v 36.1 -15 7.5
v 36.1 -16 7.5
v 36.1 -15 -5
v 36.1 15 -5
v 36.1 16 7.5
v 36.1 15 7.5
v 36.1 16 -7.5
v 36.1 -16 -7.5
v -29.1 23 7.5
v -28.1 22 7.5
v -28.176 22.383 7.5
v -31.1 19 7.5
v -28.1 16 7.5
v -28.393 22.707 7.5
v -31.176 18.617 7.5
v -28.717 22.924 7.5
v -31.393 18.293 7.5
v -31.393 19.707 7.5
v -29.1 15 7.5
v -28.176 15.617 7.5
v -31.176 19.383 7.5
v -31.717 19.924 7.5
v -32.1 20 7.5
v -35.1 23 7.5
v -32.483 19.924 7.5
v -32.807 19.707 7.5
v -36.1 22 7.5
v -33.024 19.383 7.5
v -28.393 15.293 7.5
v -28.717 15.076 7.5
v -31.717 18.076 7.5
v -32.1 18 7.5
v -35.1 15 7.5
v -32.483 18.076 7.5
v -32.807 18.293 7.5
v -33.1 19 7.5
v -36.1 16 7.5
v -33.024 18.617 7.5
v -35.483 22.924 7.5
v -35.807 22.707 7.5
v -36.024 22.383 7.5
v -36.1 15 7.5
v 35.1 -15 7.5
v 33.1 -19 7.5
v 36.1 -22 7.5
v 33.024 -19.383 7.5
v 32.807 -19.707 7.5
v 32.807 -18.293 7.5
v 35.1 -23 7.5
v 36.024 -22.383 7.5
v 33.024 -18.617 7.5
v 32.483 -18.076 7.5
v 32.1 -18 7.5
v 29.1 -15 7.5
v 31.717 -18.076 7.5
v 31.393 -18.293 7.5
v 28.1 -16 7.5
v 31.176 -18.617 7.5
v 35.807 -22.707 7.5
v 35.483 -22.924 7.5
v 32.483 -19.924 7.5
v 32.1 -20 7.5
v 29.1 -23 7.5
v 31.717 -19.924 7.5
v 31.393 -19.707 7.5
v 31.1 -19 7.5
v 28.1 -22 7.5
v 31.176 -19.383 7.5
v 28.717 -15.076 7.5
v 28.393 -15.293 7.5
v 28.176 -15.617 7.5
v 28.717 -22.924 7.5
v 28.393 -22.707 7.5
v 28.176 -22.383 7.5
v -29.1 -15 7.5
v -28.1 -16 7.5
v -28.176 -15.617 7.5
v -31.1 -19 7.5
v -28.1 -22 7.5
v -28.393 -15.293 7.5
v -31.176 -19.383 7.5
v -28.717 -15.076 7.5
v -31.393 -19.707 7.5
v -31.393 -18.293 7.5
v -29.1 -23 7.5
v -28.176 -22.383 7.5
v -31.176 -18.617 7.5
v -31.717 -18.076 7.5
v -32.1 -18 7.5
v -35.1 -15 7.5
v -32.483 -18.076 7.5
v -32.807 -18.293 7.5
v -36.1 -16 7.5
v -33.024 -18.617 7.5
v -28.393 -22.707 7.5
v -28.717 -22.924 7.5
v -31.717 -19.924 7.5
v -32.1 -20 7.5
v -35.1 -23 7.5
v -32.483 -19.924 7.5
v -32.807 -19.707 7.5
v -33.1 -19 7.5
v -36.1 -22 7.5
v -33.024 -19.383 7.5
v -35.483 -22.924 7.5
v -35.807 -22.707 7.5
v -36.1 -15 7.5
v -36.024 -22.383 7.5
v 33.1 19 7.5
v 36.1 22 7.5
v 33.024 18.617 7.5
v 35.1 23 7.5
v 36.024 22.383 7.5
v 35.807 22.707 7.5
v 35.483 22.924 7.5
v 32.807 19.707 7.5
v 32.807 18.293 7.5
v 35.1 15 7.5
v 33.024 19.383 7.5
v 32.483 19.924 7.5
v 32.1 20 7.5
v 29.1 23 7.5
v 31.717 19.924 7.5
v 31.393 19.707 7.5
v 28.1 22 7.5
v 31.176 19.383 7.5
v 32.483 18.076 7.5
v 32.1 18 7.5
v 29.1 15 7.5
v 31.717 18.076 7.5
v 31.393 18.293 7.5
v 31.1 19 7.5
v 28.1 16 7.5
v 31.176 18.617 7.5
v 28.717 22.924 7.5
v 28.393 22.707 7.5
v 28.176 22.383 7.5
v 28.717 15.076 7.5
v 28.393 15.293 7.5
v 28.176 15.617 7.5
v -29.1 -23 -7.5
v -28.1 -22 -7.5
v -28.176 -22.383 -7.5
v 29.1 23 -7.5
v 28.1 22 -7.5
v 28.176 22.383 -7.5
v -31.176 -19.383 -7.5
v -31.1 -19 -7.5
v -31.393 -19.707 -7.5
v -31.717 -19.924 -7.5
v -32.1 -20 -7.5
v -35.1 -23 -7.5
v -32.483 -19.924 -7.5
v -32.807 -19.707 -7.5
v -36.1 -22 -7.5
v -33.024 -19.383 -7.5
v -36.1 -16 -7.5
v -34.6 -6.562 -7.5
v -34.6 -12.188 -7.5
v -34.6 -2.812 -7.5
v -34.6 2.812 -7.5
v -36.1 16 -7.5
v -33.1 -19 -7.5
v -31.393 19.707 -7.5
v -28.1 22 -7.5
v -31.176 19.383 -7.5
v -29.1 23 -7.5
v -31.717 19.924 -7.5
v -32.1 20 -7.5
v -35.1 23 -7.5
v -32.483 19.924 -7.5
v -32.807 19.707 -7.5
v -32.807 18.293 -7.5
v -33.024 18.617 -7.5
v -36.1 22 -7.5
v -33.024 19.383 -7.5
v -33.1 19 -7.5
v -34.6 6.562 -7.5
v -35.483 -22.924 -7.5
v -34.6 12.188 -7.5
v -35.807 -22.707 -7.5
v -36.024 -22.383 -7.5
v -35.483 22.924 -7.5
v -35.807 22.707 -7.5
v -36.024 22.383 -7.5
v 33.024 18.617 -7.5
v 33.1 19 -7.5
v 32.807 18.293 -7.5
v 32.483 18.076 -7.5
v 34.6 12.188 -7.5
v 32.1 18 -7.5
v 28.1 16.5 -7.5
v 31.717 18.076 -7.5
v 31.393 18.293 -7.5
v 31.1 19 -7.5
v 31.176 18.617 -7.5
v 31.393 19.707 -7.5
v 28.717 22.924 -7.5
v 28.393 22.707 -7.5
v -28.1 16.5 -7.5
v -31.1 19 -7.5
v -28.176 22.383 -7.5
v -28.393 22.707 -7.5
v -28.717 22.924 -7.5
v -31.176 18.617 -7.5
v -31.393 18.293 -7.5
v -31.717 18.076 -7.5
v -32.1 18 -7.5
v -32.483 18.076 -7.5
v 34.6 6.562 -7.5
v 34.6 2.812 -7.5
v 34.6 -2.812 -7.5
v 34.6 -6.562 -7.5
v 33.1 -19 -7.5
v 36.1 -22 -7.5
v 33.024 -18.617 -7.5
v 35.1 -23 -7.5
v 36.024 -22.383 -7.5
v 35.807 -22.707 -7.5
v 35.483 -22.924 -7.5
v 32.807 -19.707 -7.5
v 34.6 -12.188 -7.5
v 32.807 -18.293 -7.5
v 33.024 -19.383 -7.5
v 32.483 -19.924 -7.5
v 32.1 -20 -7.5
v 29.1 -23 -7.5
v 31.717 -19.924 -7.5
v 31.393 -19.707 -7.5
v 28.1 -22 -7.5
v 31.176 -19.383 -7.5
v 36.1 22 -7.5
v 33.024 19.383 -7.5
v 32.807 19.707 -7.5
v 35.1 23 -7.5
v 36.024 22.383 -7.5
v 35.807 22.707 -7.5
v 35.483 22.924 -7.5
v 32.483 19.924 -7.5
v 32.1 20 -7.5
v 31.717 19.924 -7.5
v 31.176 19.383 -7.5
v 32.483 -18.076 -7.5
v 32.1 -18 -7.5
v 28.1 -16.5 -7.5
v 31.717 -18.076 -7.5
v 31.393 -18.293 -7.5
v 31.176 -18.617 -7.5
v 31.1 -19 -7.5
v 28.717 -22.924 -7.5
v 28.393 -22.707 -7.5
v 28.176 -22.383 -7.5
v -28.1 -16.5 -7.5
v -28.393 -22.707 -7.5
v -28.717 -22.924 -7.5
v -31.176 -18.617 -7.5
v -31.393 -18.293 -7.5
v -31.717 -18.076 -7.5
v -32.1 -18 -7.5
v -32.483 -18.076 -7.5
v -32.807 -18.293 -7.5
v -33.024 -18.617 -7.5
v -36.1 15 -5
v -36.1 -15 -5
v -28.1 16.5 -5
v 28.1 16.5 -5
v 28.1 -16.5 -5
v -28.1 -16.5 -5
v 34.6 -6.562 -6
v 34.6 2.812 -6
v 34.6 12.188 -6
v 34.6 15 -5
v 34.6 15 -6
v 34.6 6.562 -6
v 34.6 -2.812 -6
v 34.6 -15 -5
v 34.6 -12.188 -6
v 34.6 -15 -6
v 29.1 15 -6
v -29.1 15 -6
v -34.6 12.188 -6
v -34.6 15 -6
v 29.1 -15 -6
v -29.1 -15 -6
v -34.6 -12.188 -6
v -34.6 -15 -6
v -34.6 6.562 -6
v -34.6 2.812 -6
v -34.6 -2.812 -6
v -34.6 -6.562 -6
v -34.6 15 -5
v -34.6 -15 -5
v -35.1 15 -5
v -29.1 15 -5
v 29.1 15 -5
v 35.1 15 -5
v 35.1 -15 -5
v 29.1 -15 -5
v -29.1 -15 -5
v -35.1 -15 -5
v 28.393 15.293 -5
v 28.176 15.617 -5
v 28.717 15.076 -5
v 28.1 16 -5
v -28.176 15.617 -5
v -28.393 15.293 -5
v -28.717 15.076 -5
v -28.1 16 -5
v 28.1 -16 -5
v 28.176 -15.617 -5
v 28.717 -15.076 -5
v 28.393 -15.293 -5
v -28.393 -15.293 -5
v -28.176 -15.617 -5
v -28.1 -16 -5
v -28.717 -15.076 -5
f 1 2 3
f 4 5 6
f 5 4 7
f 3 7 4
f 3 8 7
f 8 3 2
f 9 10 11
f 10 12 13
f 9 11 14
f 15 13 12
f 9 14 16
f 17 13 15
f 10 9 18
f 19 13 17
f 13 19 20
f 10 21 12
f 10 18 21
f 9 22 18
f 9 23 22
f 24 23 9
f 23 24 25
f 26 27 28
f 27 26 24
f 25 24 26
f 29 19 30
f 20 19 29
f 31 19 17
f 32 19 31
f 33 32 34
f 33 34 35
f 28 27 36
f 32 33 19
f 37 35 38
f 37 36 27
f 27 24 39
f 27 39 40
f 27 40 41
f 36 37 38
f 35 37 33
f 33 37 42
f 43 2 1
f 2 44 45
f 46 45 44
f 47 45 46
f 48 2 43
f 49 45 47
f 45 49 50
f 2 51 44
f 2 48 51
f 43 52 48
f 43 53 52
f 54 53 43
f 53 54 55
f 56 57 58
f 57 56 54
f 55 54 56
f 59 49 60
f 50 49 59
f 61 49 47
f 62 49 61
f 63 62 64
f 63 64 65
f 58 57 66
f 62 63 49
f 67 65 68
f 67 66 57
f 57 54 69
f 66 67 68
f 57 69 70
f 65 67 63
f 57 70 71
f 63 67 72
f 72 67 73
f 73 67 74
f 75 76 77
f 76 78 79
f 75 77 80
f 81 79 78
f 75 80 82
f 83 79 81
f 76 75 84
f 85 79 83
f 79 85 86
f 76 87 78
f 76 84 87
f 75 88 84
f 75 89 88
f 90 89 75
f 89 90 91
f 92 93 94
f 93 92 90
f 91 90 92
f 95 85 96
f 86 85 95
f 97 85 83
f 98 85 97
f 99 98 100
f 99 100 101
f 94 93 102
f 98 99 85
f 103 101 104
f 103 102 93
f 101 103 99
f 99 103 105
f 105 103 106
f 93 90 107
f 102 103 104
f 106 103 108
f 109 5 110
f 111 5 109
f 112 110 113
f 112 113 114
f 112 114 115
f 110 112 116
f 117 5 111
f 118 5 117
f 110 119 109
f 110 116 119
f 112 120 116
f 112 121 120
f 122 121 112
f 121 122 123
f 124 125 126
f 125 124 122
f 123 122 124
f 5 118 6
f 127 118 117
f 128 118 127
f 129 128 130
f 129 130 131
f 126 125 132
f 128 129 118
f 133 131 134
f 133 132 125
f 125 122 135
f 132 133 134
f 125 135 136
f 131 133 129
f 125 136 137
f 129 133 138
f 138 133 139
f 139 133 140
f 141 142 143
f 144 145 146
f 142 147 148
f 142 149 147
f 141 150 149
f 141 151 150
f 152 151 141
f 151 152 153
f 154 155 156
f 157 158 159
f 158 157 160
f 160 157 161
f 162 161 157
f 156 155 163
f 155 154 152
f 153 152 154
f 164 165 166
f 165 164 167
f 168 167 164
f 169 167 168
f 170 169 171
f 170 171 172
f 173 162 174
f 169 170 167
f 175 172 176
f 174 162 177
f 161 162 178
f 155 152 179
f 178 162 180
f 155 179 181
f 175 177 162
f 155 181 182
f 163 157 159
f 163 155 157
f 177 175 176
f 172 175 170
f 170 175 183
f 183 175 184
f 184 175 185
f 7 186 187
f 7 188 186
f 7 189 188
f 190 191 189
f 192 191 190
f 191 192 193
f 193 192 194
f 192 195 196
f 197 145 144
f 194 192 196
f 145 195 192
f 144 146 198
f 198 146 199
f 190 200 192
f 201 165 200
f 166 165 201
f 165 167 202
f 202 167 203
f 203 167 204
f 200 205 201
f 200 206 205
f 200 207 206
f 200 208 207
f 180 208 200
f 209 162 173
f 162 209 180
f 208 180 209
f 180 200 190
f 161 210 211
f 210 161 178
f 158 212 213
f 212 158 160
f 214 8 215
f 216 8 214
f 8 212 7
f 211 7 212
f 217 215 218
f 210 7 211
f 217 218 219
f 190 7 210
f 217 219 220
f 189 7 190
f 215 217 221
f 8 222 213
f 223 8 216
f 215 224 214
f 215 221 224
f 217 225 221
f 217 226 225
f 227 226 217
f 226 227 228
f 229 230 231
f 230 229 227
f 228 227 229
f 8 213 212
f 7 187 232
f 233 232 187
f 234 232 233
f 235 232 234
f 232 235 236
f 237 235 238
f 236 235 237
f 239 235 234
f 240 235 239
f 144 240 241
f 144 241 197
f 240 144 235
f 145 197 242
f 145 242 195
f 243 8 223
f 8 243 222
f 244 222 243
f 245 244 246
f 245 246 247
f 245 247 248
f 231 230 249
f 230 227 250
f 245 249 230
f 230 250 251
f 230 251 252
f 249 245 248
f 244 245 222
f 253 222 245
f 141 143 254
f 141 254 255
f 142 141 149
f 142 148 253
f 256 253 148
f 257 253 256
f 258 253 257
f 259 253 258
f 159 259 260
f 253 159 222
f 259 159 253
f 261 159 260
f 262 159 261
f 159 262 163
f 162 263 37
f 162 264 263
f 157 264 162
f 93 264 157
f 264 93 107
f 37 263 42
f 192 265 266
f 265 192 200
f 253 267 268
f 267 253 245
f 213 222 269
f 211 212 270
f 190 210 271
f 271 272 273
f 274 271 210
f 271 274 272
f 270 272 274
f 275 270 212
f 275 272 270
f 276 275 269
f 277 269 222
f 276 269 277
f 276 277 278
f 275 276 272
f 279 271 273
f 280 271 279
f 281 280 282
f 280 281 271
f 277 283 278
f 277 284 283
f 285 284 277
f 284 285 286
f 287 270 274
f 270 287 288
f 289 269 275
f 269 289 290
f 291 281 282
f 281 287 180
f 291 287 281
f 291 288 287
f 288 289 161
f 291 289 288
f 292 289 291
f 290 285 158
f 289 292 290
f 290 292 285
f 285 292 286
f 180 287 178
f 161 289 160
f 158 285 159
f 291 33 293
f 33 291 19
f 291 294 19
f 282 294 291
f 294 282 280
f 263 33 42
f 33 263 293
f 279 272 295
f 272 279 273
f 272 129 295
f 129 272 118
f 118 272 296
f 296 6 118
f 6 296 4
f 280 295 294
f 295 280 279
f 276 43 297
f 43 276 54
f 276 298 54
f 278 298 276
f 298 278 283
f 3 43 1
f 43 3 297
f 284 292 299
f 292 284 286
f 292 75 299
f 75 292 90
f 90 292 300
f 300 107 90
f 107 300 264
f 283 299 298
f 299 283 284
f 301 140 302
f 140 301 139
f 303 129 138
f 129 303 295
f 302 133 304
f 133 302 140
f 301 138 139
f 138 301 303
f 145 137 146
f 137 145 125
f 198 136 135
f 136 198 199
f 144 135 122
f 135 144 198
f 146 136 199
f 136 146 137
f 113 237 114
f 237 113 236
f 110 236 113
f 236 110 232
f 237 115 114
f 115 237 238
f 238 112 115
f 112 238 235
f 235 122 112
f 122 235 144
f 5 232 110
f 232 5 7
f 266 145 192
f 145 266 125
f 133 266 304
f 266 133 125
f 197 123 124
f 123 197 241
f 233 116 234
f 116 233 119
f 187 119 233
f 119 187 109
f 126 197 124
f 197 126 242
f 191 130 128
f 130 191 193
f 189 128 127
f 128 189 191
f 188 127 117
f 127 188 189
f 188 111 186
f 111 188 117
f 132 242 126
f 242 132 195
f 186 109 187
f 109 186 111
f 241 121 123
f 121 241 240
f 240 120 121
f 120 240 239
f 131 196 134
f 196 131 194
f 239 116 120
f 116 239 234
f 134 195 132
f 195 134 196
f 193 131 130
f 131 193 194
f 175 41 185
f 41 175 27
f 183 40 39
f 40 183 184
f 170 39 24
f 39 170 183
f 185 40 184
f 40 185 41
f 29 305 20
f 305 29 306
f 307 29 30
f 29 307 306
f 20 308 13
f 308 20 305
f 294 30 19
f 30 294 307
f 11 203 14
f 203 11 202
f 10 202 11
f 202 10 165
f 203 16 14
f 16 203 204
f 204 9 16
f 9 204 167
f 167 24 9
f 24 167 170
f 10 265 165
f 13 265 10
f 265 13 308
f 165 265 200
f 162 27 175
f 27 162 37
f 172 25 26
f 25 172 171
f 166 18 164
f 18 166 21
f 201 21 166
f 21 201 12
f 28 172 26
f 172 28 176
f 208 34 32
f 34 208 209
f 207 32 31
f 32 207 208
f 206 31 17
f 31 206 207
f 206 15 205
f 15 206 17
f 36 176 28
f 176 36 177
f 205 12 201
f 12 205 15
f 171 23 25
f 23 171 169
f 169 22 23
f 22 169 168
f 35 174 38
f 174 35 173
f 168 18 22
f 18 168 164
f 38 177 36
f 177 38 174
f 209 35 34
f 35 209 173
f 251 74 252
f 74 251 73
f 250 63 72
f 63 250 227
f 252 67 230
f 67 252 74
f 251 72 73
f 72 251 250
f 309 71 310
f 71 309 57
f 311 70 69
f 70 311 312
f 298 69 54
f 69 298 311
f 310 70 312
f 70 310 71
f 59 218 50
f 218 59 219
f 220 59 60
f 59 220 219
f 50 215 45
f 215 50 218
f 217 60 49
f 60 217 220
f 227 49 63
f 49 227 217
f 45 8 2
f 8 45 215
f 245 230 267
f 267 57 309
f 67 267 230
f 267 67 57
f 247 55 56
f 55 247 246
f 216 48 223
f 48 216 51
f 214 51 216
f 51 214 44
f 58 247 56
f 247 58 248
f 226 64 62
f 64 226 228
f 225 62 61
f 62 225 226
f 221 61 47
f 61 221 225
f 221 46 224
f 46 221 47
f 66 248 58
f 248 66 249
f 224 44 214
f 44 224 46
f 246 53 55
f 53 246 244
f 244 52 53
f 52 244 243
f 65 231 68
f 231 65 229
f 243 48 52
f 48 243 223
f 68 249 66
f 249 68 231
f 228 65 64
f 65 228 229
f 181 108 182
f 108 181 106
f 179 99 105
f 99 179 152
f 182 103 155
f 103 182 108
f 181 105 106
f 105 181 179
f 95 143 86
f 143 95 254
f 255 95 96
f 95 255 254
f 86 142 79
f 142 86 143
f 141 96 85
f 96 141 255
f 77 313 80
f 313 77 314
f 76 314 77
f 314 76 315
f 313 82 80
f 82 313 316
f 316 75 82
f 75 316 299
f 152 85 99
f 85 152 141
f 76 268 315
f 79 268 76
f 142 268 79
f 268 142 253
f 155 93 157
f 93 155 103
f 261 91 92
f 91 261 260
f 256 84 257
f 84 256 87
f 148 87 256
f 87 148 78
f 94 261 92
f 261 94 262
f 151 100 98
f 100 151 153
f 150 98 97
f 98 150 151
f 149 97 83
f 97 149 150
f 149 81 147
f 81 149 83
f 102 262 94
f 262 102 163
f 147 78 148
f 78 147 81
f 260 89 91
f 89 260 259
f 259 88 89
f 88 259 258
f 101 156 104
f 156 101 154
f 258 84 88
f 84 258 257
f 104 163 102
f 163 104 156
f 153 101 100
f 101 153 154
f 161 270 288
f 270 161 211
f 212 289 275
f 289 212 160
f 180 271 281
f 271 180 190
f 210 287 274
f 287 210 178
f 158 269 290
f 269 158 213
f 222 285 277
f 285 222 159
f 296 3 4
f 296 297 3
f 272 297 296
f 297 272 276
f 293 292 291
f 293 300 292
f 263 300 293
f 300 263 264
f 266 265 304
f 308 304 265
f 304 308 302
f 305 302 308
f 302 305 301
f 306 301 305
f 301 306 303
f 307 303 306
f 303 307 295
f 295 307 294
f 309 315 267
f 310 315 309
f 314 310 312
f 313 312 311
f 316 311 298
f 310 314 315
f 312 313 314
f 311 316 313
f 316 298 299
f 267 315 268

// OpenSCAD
// file: consts.scad
//    consts.scad
//    Constant values for OpenSCAD model 
//
//    Copyright (C) 2026 Clear Creek Scientific
//
//    This program is free software: you can redistribute it and/or modify
//    it under the terms of the GNU General Public License as published by
//    the Free Software Foundation, either version 3 of the License, or
//    (at your option) any later version.
//
//    This program is distributed in the hope that it will be useful,
//    but WITHOUT ANY WARRANTY; without even the implied warranty of
//    MERCHANTABILITY or FITNESS FOR A PARTICULAR PURPOSE.  See the
//    GNU General Public License for more details.
//
//    You should have received a copy of the GNU General Public License
//    along with this program.  If not, see <https://www.gnu.org/licenses/>.

WALL_WIDTH = 1.5;
TAB_WIDTH = 8;
HALF_TAB_WIDTH = 0.5 * TAB_WIDTH;
TAB_HOLE_RADIUS = 1;
TAB_CORNER_RADIUS=1;
DRAIN_HOLE_HEIGHT = 5.0;
DRAIN_HOLE_RADIUS = 2.0;
SCREW_HOLE_HEIGHT = 2.0 * WALL_WIDTH;
SCREW_HOLE_RADIUS = 1.0;
SCREW_HEAD_HEIGHT = 0.5*WALL_WIDTH;
SCREW_HEAD_RADIUS = 2.5;

BATTERY_INNER_X_DIM = 69.2;
BATTERY_INNER_Y_DIM = 19.0;
BATTERY_WALL_HEIGHT = BATTERY_INNER_Y_DIM + WALL_WIDTH + 5.0;
BATTERY_OUTER_X_DIM = BATTERY_INNER_X_DIM + 2*WALL_WIDTH;
BATTERY_OUTER_Y_DIM = BATTERY_INNER_Y_DIM + 2*WALL_WIDTH;
BATTERY_X_OFFSET = 6; 

WIRETIE_INNER_X_DIM = 69.2;
WIRETIE_INNER_Y_DIM = 30.0;
WIRETIE_WALL_HEIGHT = 15.0; 
WIRETIE_OUTER_X_DIM = WIRETIE_INNER_X_DIM + 2*WALL_WIDTH;
WIRETIE_OUTER_Y_DIM = WIRETIE_INNER_Y_DIM + 2*WALL_WIDTH;
WIRETIE_X_OFFSET = 6;

PANEL_WALL_HEIGHT = 8;
PANEL_INNER_X_DIM = 138;
PANEL_INNER_Y_DIM = 114;
PANEL_OUTER_X_DIM = PANEL_INNER_X_DIM + 2*WALL_WIDTH;
PANEL_OUTER_Y_DIM = PANEL_INNER_Y_DIM + 2*WALL_WIDTH;
PANEL_CENTER_BOX_WIDTH = 30;

PANEL_CENTER_X_LEN = 52.5;
PANEL_CENTER_Y_LEN = 41.0;

MOUNT_INNER_X_DIM = 33.0;
MOUNT_INNER_Y_DIM = MOUNT_INNER_X_DIM;
MOUNT_WALL_HEIGHT = 36.0;
MOUNT_OUTER_X_DIM = MOUNT_INNER_X_DIM + 2*WALL_WIDTH;
MOUNT_OUTER_Y_DIM = MOUNT_INNER_Y_DIM + 2*WALL_WIDTH;

CHARGER_INNER_X_DIM = MOUNT_INNER_X_DIM;
CHARGER_INNER_Y_DIM = MOUNT_INNER_Y_DIM;
CHARGER_WALL_HEIGHT = 20.0;
CHARGER_OUTER_X_DIM = CHARGER_INNER_X_DIM + 2*WALL_WIDTH;
CHARGER_OUTER_Y_DIM = CHARGER_INNER_Y_DIM + 2*WALL_WIDTH;

HINGE_TAB_WIDTH = 15.0;
HINGE_TAB_DEPTH = 3.0;
HINGE_TAB_HEIGHT = 16.0;
HINGE_TAB_RADIUS = 3.0;

HINGE_HOLE_DEPTH = HINGE_TAB_DEPTH+0.2;
// Hinge hole needs to accept a 10/32 inch screw
HINGE_HOLE_DIAMETER = 6;
HINGE_HOLE_RADIUS = 0.5*HINGE_HOLE_DIAMETER;
HINGE_HOLE_OFFSET = HINGE_TAB_HEIGHT - (HINGE_HOLE_RADIUS+3);

HINGE_GAP = 3.1;
HINGE_SUPPORT_OVERHANG = 2.0;

SKIRT_WALL_HEIGHT = 16;
SKIRT_INNER_X_DIM = PANEL_INNER_X_DIM - 2*(WALL_WIDTH+0.2);
SKIRT_INNER_Y_DIM = PANEL_INNER_Y_DIM - 2*(WALL_WIDTH+0.2);
SKIRT_OUTER_X_DIM = SKIRT_INNER_X_DIM + 2*WALL_WIDTH;
SKIRT_OUTER_Y_DIM = SKIRT_INNER_Y_DIM + 2*WALL_WIDTH;
SKIRT_TAB_OFFSET = 4 * WALL_WIDTH;
SKIRT_TAB_DIM = 2*SCREW_HEAD_RADIUS+SKIRT_TAB_OFFSET+0.5;
SKIRT_TAB_HEIGHT = 4; 
// file: common.scad
//    battery_box.scad
//    OpenSCAD model for a box for a PKCELL 18650 lithium-ion battery 
//
//    Copyright (C) 2026 Clear Creek Scientific
//
//    This program is free software: you can redistribute it and/or modify
//    it under the terms of the GNU General Public License as published by
//    the Free Software Foundation, either version 3 of the License, or
//    (at your option) any later version.
//
//    This program is distributed in the hope that it will be useful,
//    but WITHOUT ANY WARRANTY; without even the implied warranty of
//    MERCHANTABILITY or FITNESS FOR A PARTICULAR PURPOSE.  See the
//    GNU General Public License for more details.
//
//    You should have received a copy of the GNU General Public License
//    along with this program.  If not, see <https://www.gnu.org/licenses/>.

include <consts.scad>
use <MCAD/boxes.scad>
use <MCAD/regular_shapes.scad>

module tab(height) {
    difference() {
        roundedBox(size=[TAB_WIDTH,TAB_WIDTH,height],radius=TAB_CORNER_RADIUS,sidesonly=true);
        translate([0,0,-height]) {
            cylinder(2*height,TAB_HOLE_RADIUS,TAB_HOLE_RADIUS);
        }
    }
}

module drain_hole() {
    //cylinder(h=DRAIN_HOLE_HEIGHT,r=DRAIN_HOLE_RADIUS,center=true);
    cube([DRAIN_HOLE_HEIGHT,DRAIN_HOLE_HEIGHT,DRAIN_HOLE_HEIGHT],center=true);
}

module screw_hole() {
    union() {
        cylinder(h=SCREW_HOLE_HEIGHT,r=SCREW_HOLE_RADIUS,center=true);
        translate([0,0,0.5*WALL_WIDTH]) {
            cylinder(h=SCREW_HEAD_HEIGHT,r=SCREW_HEAD_RADIUS,center=true);
        }
    }
}

module reverse_screw_hole() {
    union() {
        cylinder(h=SCREW_HEAD_HEIGHT,r=SCREW_HEAD_RADIUS,center=true);
        translate([0,0,0.5*WALL_WIDTH]) {
            cylinder(h=SCREW_HOLE_HEIGHT,r=SCREW_HOLE_RADIUS,center=true);
        }
    }
}

module hinge_tab(hole_offset) {
    rotate([90,0,0]) {
        difference() {
            roundedBox(size=[HINGE_TAB_WIDTH,HINGE_TAB_HEIGHT,HINGE_TAB_DEPTH],radius=HINGE_TAB_RADIUS,sidesonly=true);
            translate([0,hole_offset,0]) {
                cylinder(h=HINGE_HOLE_DEPTH+0.2,r=HINGE_HOLE_RADIUS,center=true);
            }
        }
    }
}

BASE_X_DIM = MOUNT_OUTER_X_DIM;
BASE_Y_DIM = MOUNT_OUTER_Y_DIM+2*(TAB_WIDTH-WALL_WIDTH);

module mount_hinge_base() {
    union () {
        // main base 
        difference() {
            roundedBox(size=[BASE_X_DIM,BASE_Y_DIM,WALL_WIDTH],radius=TAB_CORNER_RADIUS,sidesonly=true);

            // cut out screw holes
            translate([0.5*(BASE_X_DIM-TAB_WIDTH),0.5*(BASE_Y_DIM-TAB_WIDTH),0]) {
                screw_hole();
            }
            translate([-0.5*(BASE_X_DIM-TAB_WIDTH),0.5*(BASE_Y_DIM-TAB_WIDTH),0]) {
                screw_hole();
            }
            translate([0.5*(BASE_X_DIM-TAB_WIDTH),-0.5*(BASE_Y_DIM-TAB_WIDTH),0]) {
                screw_hole();
            }
            translate([-0.5* (BASE_X_DIM-TAB_WIDTH),-0.5*(BASE_Y_DIM-TAB_WIDTH),0]) {
                screw_hole();
            }
        } // difference

        // support base for hinges
        translate([0,0,0.5*HINGE_TAB_DEPTH]) {
            cube([HINGE_TAB_WIDTH+2*HINGE_SUPPORT_OVERHANG,4*HINGE_TAB_DEPTH+HINGE_GAP+2*HINGE_SUPPORT_OVERHANG,HINGE_TAB_DEPTH],center=true);
        }
    }
}
// main file
//    wiretie_box.scad
//    OpenSCAD model for a wire tie box
//
//    Copyright (C) 2026 Clear Creek Scientific
//
//    This program is free software: you can redistribute it and/or modify
//    it under the terms of the GNU General Public License as published by
//    the Free Software Foundation, either version 3 of the License, or
//    (at your option) any later version.
//
//    This program is distributed in the hope that it will be useful,
//    but WITHOUT ANY WARRANTY; without even the implied warranty of
//    MERCHANTABILITY or FITNESS FOR A PARTICULAR PURPOSE.  See the
//    GNU General Public License for more details.
//
//    You should have received a copy of the GNU General Public License
//    along with this program.  If not, see <https://www.gnu.org/licenses/>.

include <common.scad>

$fa=1;
$fs=0.4;


module basic_wiretie_box() {
    difference() {
    
        // outer box
        cube([WIRETIE_OUTER_X_DIM,WIRETIE_OUTER_Y_DIM,WIRETIE_WALL_HEIGHT],center=true); 

        // cut out inner box
        translate([0,0,WALL_WIDTH]) {
            cube([WIRETIE_INNER_X_DIM,WIRETIE_INNER_Y_DIM,WIRETIE_WALL_HEIGHT],center=true); 
        }
    } // difference
}

RAIL_WIDTH = WIRETIE_INNER_Y_DIM/8;

module basic_wiretie_box_with_cutouts() {
    difference() {
        basic_wiretie_box();

        // cut out tie rails 
        translate([0,0,-0.5*(WIRETIE_WALL_HEIGHT)-0.1]) {
            cube([WIRETIE_INNER_X_DIM,1.5*RAIL_WIDTH,4*WALL_WIDTH],center=true); 
        }
        translate([0,2.5*RAIL_WIDTH,-0.5*(WIRETIE_WALL_HEIGHT)-0.1]) {
            cube([WIRETIE_INNER_X_DIM,1.5*RAIL_WIDTH,4*WALL_WIDTH],center=true); 
        }
        translate([0,-2.5*RAIL_WIDTH,-0.5*(WIRETIE_WALL_HEIGHT)-0.1]) {
            cube([WIRETIE_INNER_X_DIM,1.5*RAIL_WIDTH,4*WALL_WIDTH],center=true); 
        }
        
        // make end cutouts
        translate([0.5*(WIRETIE_OUTER_X_DIM-WALL_WIDTH),0,WALL_WIDTH]) {
            cube([WALL_WIDTH+0.5,WIRETIE_INNER_Y_DIM,WIRETIE_WALL_HEIGHT-2],center=true); 
        }
        translate([-0.5*(WIRETIE_OUTER_X_DIM-WALL_WIDTH),0,WALL_WIDTH]) {
            cube([WALL_WIDTH+0.5,WIRETIE_INNER_Y_DIM,WIRETIE_WALL_HEIGHT-2],center=true); 
        }
        
        // make side cutouts
        translate([0,0.5*WIRETIE_INNER_Y_DIM,WALL_WIDTH]) {
            cube([WIRETIE_INNER_X_DIM-10,WIRETIE_INNER_Y_DIM-10.0,WIRETIE_WALL_HEIGHT-2],center=true); 
        }
        translate([0,-0.5*WIRETIE_INNER_Y_DIM,WALL_WIDTH]) {
            cube([WIRETIE_INNER_X_DIM-10,WIRETIE_INNER_Y_DIM-10.0,WIRETIE_WALL_HEIGHT-2],center=true); 
        }

    } // difference
}

module wiretie_box() {
    union() {
        basic_wiretie_box_with_cutouts();
        
        // tabs
        translate([0.5*(WIRETIE_OUTER_X_DIM - TAB_WIDTH),0.5*(WIRETIE_INNER_Y_DIM + TAB_WIDTH),0]) {
            tab(WIRETIE_WALL_HEIGHT);
        }
        translate([-0.5*(WIRETIE_OUTER_X_DIM - TAB_WIDTH),0.5*(WIRETIE_INNER_Y_DIM + TAB_WIDTH),0]) {
            tab(WIRETIE_WALL_HEIGHT);
        }
        translate([0.5*(WIRETIE_OUTER_X_DIM - TAB_WIDTH),-0.5*(WIRETIE_INNER_Y_DIM + TAB_WIDTH),0]) {
            tab(WIRETIE_WALL_HEIGHT);
        }
        translate([-0.5*(WIRETIE_OUTER_X_DIM - TAB_WIDTH),-0.5*(WIRETIE_INNER_Y_DIM + TAB_WIDTH),0]) {
            tab(WIRETIE_WALL_HEIGHT);
        }
        
    }
}

wiretie_box();
